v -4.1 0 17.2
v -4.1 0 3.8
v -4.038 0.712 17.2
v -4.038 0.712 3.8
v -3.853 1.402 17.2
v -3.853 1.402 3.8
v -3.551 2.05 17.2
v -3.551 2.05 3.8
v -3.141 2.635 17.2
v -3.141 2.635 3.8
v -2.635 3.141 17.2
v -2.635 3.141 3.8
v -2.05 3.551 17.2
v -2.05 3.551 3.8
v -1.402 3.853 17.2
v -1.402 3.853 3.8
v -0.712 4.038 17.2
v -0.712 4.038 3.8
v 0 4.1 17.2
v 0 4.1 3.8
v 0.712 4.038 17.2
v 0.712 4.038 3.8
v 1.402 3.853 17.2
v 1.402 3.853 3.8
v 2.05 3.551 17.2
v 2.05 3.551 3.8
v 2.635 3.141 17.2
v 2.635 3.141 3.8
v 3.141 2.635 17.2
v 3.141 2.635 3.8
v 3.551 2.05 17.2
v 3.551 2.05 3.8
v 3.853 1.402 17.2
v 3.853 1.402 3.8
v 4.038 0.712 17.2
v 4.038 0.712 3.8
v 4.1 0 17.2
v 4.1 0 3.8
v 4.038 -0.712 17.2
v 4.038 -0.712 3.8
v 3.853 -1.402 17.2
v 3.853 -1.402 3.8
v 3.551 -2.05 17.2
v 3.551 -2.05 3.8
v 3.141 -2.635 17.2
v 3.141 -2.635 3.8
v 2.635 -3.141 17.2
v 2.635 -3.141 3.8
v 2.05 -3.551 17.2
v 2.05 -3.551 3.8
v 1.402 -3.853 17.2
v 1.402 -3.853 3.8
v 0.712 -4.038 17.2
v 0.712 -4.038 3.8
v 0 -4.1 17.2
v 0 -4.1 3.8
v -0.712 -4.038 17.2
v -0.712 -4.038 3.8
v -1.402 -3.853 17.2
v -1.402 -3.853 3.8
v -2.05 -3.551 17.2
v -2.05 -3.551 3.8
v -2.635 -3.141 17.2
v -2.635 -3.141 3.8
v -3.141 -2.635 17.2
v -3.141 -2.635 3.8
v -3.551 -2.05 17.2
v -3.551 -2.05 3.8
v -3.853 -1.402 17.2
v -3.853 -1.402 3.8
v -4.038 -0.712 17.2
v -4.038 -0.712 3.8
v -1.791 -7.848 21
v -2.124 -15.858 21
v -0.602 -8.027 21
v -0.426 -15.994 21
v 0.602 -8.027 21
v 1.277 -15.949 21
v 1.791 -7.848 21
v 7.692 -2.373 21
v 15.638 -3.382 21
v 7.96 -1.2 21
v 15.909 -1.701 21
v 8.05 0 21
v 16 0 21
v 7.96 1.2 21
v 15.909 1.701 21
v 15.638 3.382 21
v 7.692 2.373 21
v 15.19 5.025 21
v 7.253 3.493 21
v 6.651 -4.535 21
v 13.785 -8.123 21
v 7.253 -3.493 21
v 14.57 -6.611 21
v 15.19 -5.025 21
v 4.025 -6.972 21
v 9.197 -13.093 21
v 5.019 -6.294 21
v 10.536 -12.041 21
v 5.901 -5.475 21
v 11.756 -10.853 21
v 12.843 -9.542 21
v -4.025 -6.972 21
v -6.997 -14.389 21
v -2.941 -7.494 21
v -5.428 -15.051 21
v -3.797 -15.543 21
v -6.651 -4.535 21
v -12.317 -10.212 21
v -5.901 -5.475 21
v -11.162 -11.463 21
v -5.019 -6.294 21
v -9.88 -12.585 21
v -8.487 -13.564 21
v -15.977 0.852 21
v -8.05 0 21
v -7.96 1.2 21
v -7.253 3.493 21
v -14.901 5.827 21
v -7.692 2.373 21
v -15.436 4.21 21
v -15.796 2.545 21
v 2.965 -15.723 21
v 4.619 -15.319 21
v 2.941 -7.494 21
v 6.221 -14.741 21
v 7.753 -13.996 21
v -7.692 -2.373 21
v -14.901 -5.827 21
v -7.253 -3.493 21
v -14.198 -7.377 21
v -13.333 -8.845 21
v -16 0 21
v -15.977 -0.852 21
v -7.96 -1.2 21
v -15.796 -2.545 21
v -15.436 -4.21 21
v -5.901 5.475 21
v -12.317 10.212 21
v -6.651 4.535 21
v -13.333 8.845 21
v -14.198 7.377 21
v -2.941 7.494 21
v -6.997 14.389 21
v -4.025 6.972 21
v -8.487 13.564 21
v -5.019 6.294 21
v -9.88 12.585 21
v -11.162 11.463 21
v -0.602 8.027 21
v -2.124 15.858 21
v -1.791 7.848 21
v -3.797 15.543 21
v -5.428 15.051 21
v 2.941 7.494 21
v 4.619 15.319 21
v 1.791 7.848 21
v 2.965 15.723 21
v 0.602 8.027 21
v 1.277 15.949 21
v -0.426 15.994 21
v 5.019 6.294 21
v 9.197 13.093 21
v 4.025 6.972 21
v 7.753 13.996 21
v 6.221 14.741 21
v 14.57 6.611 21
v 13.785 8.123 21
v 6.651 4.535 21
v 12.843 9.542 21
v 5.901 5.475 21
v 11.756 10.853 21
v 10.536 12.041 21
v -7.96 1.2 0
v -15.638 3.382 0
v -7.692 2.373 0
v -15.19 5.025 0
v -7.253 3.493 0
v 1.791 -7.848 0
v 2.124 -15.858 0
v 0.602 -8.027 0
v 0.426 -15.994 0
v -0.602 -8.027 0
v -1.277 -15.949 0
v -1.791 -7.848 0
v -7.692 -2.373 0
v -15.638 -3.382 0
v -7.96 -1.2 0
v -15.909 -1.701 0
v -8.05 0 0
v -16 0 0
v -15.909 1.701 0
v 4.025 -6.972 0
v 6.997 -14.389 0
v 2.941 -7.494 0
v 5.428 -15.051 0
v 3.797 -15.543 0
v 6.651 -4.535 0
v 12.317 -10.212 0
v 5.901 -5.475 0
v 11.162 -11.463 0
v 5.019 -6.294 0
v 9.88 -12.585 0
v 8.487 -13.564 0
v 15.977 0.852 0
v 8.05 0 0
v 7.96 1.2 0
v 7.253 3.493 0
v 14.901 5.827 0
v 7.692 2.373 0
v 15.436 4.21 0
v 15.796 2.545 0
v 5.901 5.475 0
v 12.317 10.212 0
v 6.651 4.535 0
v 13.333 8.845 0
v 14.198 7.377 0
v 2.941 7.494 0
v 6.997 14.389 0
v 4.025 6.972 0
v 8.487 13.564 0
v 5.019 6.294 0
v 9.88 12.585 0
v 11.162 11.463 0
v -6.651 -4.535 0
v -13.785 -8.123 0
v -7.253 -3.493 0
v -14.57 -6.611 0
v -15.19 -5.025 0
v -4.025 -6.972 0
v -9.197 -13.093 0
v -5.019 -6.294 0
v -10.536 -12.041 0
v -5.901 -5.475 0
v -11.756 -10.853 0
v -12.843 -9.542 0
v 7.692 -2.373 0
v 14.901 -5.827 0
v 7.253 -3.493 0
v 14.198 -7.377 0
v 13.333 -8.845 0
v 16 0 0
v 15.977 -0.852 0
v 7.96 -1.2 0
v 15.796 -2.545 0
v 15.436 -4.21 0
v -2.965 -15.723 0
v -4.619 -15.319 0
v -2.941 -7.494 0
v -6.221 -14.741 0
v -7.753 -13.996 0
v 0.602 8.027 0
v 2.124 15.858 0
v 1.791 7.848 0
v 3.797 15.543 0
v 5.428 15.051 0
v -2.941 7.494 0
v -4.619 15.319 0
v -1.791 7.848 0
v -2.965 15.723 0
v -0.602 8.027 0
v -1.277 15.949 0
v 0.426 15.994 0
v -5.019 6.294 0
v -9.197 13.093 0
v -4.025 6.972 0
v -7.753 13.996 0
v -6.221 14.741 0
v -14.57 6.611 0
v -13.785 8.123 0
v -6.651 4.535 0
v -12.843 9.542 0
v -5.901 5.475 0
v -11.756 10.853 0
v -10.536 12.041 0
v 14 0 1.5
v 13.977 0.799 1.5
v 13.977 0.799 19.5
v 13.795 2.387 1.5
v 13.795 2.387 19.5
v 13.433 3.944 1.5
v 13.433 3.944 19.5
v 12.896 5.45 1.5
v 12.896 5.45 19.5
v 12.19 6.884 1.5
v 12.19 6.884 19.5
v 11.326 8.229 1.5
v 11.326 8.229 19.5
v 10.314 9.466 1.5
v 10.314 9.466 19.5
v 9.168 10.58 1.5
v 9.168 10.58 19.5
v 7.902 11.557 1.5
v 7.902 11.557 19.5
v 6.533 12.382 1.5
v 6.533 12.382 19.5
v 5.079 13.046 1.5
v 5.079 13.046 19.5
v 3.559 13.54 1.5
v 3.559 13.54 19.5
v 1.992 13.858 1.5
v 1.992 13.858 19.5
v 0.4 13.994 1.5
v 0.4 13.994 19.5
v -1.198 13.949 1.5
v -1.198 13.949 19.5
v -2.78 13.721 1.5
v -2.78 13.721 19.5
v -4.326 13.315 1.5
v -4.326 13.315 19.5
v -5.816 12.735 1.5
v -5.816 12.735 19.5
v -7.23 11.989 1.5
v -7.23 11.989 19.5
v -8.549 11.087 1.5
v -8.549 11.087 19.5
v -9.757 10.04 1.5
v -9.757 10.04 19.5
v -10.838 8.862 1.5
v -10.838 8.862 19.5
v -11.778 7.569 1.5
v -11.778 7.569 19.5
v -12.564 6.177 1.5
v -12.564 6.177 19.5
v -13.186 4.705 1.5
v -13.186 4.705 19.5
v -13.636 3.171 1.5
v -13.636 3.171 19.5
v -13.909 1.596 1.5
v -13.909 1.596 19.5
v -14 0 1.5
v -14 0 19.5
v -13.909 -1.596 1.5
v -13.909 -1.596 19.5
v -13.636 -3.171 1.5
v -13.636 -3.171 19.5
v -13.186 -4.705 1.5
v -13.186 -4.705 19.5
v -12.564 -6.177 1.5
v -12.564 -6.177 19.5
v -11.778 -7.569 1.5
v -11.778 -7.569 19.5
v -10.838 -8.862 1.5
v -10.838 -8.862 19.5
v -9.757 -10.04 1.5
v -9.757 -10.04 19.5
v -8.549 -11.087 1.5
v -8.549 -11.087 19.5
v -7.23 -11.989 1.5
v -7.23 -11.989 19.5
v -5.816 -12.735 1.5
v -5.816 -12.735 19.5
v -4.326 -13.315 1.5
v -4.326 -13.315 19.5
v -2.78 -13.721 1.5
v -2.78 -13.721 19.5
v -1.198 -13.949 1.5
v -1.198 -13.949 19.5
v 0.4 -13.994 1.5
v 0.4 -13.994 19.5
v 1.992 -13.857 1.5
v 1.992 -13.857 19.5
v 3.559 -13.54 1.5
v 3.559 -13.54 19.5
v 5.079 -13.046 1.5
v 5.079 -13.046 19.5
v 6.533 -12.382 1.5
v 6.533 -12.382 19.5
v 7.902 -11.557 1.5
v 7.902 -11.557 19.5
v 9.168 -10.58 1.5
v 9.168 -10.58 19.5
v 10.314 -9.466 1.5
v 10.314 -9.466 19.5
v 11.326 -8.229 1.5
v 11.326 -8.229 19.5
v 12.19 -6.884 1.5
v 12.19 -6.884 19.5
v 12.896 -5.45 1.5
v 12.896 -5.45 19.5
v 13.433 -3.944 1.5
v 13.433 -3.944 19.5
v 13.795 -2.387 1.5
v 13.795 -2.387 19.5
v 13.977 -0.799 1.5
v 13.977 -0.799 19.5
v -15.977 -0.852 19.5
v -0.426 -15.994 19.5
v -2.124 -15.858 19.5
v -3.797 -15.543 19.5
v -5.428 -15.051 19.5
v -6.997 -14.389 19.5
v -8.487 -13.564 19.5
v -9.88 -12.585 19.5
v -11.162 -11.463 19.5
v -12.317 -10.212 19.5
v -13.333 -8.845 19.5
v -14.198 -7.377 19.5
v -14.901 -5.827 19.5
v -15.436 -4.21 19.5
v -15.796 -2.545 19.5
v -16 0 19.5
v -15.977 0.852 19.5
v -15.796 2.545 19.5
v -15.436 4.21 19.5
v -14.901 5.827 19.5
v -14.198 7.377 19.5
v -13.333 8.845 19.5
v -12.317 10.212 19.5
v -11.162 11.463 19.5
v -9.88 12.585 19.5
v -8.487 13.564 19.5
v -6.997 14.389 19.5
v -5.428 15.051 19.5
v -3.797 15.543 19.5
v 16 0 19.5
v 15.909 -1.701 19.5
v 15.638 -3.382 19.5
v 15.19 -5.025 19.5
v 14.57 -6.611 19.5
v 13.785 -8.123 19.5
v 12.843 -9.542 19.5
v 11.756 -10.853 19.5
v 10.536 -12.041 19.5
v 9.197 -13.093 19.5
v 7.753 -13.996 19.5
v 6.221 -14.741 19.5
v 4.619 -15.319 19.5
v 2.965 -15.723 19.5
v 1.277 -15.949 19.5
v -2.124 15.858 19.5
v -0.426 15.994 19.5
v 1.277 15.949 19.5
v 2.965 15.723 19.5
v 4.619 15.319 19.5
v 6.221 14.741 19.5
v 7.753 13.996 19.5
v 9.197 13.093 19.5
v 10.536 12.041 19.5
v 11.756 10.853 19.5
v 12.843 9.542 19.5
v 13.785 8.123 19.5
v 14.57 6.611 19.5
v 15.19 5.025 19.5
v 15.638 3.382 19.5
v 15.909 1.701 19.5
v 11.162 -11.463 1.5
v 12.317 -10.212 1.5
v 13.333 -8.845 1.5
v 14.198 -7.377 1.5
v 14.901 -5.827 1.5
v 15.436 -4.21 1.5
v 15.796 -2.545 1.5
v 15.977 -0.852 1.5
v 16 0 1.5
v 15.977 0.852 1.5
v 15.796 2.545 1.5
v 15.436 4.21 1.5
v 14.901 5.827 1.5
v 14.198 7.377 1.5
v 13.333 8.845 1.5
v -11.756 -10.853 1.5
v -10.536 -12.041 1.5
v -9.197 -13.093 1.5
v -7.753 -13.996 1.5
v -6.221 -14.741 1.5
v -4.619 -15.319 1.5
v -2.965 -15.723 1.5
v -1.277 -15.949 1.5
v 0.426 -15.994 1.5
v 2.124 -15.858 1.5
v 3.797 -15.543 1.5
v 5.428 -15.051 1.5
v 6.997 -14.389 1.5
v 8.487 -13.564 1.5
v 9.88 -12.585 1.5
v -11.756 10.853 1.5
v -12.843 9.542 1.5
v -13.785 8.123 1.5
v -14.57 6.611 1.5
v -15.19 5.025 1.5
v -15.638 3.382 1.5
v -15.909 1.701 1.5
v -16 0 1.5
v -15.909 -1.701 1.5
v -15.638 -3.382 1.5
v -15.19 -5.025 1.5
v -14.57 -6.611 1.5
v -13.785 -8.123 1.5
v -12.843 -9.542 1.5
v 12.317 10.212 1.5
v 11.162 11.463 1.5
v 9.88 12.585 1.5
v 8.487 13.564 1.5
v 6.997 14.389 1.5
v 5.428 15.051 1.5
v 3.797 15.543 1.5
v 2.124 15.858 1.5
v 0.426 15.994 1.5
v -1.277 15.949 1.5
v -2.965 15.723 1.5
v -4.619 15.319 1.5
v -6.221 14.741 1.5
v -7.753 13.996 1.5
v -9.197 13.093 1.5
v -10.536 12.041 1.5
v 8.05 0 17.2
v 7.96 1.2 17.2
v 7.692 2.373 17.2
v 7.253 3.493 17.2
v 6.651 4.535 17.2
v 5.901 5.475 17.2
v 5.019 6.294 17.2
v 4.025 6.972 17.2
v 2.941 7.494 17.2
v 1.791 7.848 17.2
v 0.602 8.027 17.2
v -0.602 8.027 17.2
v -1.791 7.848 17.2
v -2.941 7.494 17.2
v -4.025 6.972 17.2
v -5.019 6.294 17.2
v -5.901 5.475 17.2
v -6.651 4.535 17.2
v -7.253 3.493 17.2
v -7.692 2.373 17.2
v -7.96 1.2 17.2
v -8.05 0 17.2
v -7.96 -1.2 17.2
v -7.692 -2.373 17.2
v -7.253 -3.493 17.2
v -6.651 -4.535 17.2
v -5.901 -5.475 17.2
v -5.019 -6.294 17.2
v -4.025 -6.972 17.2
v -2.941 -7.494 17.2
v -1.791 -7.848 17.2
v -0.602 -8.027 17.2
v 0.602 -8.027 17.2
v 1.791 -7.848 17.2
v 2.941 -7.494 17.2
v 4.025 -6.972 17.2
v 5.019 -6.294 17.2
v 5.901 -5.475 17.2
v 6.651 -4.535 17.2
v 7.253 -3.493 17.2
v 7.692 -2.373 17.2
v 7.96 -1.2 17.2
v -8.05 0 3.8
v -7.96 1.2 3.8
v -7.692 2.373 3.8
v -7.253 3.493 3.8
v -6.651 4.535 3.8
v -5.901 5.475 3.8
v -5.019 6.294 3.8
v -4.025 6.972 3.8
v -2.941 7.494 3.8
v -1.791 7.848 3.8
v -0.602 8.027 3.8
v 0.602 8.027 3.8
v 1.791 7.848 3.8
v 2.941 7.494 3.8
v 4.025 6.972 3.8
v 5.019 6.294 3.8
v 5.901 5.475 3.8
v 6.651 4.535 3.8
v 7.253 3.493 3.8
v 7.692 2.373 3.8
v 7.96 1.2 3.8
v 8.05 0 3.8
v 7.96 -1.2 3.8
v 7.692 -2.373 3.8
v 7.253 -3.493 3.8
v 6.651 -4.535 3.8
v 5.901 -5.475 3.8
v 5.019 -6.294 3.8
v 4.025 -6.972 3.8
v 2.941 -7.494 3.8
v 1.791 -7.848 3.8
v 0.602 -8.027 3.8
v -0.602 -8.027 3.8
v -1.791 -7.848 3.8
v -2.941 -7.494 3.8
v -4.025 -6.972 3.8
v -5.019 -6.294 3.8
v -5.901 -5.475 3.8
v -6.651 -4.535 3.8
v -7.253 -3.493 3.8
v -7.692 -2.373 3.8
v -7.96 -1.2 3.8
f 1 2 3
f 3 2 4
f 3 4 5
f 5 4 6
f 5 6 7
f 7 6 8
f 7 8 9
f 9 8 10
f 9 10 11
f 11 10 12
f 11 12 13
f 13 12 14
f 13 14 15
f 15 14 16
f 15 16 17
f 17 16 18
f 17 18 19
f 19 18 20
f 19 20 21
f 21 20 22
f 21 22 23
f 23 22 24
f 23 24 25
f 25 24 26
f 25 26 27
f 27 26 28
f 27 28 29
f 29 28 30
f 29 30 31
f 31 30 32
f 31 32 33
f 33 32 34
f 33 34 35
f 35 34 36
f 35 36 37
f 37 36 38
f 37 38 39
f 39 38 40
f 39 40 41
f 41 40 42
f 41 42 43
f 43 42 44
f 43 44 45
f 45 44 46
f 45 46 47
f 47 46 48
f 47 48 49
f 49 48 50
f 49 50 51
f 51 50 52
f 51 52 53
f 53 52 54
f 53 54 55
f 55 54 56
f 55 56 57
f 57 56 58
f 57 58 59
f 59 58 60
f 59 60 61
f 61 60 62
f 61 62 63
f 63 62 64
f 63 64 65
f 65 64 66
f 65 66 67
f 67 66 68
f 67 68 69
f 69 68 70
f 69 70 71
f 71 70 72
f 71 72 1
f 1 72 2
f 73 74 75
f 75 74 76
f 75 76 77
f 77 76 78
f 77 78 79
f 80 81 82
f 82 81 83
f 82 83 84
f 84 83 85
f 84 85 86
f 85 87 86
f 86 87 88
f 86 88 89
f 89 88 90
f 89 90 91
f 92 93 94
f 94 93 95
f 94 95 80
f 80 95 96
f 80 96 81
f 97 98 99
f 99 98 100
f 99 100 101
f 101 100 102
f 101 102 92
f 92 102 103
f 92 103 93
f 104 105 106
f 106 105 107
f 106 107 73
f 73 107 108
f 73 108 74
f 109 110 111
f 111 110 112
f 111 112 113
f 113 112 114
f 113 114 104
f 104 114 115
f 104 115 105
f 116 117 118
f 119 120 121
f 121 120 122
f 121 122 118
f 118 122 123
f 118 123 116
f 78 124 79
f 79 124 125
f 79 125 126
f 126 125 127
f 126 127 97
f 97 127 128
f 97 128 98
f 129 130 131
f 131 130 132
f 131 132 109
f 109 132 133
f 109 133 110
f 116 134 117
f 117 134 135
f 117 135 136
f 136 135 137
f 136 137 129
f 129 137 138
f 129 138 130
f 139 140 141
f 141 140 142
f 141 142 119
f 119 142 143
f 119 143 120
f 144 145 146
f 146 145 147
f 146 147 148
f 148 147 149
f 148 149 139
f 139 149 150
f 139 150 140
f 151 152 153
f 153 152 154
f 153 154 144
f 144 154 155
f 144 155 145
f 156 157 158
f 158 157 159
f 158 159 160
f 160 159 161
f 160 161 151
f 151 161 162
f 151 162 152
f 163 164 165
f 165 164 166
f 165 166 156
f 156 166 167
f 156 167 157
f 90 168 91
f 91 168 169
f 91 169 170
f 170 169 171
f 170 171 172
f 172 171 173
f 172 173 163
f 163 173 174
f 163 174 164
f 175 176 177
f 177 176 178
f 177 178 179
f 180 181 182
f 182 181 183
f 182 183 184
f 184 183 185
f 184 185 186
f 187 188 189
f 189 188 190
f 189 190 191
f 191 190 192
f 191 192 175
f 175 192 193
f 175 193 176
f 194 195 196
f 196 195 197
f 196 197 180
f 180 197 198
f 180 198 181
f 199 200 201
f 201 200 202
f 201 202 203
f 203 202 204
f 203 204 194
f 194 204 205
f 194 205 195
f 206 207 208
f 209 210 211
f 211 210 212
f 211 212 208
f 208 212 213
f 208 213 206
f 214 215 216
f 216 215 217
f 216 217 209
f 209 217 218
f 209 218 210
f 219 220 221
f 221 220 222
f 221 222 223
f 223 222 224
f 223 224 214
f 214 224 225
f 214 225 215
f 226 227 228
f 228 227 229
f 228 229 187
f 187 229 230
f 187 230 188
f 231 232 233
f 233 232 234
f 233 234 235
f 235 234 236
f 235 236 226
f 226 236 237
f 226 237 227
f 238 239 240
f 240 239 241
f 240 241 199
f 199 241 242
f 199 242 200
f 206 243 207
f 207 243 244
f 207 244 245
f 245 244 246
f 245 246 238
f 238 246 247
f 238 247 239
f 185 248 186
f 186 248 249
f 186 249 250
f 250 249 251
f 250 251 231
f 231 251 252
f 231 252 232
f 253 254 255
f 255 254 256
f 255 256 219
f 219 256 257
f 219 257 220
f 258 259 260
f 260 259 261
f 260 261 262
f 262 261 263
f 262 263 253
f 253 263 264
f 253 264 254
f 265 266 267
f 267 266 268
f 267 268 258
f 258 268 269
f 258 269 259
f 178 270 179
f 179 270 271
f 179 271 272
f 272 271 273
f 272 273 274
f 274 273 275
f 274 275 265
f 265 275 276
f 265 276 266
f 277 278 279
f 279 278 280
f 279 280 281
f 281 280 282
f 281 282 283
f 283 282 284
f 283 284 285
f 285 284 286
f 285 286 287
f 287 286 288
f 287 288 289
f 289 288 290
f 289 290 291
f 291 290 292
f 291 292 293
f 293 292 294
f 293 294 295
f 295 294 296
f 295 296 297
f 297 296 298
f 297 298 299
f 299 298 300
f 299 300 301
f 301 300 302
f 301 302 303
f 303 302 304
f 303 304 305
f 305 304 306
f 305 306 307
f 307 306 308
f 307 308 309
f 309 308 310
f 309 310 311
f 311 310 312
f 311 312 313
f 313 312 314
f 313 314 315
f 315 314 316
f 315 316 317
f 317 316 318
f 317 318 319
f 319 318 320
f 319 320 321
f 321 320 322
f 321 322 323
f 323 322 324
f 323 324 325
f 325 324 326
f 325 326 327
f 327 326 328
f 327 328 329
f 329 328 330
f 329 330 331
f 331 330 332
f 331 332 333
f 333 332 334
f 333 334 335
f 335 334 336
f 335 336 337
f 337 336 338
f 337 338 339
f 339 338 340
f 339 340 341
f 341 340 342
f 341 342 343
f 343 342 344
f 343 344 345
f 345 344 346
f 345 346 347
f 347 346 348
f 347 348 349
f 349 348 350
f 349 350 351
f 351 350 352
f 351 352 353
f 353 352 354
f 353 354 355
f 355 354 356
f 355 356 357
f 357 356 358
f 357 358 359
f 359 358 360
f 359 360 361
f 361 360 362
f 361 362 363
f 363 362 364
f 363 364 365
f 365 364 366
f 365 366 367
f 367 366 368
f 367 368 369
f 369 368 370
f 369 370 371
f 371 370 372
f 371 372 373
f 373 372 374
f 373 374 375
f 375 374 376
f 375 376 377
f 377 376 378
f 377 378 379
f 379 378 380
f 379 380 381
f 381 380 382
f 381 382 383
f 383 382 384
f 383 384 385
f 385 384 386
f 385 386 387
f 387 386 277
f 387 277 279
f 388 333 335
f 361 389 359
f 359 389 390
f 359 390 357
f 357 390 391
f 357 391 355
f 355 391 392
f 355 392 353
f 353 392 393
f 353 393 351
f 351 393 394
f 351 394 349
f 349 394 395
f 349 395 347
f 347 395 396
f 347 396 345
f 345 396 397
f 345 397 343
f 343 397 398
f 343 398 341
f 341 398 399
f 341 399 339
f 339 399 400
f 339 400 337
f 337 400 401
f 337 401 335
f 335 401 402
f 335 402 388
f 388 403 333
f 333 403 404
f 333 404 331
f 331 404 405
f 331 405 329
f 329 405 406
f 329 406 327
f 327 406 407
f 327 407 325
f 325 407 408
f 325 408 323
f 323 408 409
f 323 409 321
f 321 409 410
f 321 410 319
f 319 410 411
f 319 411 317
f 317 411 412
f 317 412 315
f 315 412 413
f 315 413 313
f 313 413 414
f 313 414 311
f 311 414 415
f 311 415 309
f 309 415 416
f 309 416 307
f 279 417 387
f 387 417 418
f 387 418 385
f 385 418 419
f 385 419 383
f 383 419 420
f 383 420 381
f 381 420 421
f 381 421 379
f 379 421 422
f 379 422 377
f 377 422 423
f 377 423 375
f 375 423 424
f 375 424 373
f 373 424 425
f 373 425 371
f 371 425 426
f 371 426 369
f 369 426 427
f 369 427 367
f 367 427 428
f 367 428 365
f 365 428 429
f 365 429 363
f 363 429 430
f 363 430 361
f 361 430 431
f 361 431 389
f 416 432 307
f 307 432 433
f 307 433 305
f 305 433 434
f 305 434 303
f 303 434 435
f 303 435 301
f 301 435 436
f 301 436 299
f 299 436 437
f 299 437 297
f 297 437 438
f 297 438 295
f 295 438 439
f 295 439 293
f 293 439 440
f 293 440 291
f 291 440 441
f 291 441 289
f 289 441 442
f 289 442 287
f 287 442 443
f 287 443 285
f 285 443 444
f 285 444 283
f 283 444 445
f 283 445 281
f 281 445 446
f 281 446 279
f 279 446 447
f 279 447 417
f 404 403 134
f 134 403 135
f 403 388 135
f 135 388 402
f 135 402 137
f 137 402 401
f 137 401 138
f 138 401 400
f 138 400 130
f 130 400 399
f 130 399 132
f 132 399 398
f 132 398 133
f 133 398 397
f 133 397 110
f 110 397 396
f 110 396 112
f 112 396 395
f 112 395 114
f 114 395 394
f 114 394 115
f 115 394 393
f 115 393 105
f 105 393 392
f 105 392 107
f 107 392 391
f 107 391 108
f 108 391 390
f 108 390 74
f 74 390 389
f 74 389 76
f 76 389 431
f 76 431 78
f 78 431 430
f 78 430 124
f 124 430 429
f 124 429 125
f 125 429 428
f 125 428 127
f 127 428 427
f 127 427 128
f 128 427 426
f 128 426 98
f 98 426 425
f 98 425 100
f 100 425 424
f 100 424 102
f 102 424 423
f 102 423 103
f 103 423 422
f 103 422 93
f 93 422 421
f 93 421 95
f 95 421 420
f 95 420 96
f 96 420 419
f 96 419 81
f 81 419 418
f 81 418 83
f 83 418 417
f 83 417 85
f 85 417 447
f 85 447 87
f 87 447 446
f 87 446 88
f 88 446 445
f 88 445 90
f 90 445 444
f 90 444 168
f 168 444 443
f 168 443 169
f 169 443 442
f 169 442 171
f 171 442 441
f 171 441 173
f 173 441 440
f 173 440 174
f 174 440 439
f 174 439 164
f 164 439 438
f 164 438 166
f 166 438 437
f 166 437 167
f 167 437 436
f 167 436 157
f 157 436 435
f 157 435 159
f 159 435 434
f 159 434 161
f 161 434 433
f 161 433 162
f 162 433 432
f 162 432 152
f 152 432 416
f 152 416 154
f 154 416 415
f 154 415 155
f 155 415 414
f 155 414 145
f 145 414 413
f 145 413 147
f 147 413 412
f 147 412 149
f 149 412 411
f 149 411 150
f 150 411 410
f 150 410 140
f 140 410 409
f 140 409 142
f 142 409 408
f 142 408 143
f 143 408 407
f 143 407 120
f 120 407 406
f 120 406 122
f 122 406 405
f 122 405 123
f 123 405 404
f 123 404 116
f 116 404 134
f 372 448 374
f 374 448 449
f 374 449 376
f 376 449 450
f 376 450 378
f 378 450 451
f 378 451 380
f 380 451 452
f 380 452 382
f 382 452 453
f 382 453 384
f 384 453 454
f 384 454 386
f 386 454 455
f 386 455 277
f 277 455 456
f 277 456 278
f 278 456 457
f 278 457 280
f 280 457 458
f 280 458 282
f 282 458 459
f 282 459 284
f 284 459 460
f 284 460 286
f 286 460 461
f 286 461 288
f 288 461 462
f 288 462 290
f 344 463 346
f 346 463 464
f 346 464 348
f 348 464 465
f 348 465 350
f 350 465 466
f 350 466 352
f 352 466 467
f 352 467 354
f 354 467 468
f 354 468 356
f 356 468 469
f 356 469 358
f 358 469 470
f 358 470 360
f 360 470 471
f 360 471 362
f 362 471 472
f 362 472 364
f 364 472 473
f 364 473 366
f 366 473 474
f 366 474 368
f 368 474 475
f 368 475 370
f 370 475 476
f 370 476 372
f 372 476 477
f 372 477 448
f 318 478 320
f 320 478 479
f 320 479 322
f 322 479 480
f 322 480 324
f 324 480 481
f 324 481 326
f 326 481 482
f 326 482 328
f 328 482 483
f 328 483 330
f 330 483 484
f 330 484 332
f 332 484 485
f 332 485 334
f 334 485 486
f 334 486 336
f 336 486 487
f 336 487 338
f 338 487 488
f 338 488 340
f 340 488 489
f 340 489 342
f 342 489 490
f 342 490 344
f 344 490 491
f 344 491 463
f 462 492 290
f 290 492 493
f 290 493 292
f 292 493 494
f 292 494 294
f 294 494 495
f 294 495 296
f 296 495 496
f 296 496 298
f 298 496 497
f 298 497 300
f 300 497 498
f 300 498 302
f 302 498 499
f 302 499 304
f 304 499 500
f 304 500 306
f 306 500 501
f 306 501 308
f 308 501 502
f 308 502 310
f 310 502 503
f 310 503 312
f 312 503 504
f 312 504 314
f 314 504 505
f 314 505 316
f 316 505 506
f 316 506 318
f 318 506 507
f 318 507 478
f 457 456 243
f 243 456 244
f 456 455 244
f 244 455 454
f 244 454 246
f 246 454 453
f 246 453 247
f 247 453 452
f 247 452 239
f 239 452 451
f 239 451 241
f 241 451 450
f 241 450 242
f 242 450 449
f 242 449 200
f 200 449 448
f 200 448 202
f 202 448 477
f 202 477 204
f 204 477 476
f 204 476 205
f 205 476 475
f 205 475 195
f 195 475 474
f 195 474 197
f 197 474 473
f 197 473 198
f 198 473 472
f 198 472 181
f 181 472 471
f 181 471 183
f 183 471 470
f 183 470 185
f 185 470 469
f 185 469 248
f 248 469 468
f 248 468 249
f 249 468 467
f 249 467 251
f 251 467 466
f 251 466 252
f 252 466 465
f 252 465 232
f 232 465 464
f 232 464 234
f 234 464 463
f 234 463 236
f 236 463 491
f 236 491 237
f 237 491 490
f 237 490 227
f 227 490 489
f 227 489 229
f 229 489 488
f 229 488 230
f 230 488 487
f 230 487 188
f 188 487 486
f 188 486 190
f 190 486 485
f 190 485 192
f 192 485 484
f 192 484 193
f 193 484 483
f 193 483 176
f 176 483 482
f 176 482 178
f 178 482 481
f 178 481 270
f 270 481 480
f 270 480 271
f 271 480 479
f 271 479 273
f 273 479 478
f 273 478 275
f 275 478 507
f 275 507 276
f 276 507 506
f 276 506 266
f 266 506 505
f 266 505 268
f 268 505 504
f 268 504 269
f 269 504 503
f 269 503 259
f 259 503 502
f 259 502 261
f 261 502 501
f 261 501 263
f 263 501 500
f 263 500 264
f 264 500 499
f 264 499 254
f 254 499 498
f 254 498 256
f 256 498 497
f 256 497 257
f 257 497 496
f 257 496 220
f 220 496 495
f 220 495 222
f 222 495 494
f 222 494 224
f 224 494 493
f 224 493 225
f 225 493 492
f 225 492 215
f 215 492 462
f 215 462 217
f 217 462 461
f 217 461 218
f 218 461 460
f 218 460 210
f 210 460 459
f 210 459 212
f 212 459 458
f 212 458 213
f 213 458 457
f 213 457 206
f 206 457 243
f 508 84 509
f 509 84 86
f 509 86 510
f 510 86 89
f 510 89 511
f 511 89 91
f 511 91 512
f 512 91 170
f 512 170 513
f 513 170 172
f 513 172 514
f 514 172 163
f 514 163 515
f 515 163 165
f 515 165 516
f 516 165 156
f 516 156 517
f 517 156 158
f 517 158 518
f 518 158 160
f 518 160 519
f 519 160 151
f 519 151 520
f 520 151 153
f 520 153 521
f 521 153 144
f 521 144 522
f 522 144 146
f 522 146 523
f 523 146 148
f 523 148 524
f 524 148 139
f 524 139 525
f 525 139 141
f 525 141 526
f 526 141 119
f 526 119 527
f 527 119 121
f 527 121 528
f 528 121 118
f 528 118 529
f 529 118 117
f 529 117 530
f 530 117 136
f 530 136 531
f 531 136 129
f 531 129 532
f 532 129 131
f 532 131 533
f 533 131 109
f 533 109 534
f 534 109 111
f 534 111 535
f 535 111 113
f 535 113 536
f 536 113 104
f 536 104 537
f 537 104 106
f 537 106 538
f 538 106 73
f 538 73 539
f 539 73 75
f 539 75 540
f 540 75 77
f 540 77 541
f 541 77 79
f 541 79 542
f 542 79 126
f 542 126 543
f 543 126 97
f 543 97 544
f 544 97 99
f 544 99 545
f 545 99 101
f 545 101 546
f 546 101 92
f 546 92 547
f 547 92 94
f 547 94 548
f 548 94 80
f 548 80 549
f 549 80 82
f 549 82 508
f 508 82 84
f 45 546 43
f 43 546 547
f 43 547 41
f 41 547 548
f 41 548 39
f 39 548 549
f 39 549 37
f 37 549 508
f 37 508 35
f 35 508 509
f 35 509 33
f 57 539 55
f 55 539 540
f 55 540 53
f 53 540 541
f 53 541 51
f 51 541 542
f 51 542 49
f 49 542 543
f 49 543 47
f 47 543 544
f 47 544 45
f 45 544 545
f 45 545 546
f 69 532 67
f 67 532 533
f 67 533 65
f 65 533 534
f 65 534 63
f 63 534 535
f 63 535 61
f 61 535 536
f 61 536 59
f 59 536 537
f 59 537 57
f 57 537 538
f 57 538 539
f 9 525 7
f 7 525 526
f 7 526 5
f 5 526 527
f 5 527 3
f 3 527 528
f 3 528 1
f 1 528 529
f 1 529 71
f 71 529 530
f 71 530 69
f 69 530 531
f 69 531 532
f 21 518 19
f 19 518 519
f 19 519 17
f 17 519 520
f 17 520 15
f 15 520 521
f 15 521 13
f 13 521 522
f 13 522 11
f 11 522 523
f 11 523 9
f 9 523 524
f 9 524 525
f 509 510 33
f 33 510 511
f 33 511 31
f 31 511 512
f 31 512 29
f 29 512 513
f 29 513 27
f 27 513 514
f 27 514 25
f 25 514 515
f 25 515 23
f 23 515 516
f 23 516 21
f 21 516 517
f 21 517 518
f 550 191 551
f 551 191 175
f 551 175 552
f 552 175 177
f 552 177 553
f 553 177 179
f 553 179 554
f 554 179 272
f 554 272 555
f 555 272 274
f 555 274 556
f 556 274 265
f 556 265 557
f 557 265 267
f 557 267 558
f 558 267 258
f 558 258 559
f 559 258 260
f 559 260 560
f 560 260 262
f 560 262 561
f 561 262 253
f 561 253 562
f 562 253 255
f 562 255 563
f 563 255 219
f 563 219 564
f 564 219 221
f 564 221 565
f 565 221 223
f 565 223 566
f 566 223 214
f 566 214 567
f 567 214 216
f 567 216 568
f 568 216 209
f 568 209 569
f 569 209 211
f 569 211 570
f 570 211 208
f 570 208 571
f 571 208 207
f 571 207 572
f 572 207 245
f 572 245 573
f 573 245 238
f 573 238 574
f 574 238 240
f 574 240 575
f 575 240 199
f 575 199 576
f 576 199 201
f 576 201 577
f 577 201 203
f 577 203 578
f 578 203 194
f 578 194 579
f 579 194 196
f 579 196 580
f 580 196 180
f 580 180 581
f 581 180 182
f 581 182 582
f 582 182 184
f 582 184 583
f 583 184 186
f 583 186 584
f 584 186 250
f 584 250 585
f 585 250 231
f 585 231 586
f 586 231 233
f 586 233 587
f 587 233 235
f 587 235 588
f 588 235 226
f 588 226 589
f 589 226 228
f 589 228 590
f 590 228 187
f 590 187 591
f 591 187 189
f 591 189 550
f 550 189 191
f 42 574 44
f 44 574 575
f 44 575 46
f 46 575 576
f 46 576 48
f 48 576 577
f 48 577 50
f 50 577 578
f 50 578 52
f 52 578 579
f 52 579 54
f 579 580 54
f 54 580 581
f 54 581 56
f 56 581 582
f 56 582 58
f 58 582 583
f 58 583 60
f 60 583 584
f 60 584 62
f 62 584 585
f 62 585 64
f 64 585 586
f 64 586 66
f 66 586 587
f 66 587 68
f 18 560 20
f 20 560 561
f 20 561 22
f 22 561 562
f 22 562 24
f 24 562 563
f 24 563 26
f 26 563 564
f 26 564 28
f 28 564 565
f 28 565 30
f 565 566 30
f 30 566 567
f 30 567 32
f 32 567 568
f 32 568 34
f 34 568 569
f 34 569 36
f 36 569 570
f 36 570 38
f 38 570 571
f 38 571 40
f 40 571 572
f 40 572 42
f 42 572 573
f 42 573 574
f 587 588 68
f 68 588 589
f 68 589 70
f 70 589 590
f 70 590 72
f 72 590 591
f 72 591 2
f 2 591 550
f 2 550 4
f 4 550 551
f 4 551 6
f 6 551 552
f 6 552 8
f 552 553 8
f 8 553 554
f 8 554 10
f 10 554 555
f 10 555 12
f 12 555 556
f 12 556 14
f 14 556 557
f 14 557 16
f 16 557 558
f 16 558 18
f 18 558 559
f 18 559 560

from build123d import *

# Parameters (mm, degrees)
SKETCH1_R           = 14
SKETCH1_R_2         = 4.1
BOSS_EXTRUDE1_DEPTH = 21
SKETCH8_R           = 16
SKETCH8_R_2         = 6.25
BOSS_EXTRUDE2_DEPTH = 1.5
SKETCH9_R           = 16
SKETCH9_R_2         = 6.25
BOSS_EXTRUDE3_DEPTH = 1.5
SKETCH10_R          = 8.05
CUT_EXTRUDE1_DEPTH  = 3.8
CUT_EXTRUDE2_START  = -21
SKETCH10_2_R        = 8.05
CUT_EXTRUDE2_DEPTH  = 3.8


with BuildPart() as part:
    # Sketch1 → Boss-Extrude1 (new body)
    with BuildSketch(Plane.XY):
        Circle(SKETCH1_R)
        Circle(SKETCH1_R_2, mode=Mode.SUBTRACT)
    extrude(amount=BOSS_EXTRUDE1_DEPTH)

    # Sketch8 → Boss-Extrude2 (add)
    with BuildSketch(Plane(origin=(0, 0, 21), x_dir=(-1, 0, 0), z_dir=(0, 0, -1))):
        Circle(SKETCH8_R)
        Circle(SKETCH8_R_2, mode=Mode.SUBTRACT)
    extrude(amount=BOSS_EXTRUDE2_DEPTH)

    # Sketch9 → Boss-Extrude3 (add)
    with BuildSketch(Plane.XY):
        Circle(SKETCH9_R)
        Circle(SKETCH9_R_2, mode=Mode.SUBTRACT)
    extrude(amount=BOSS_EXTRUDE3_DEPTH)

    # Sketch10 → Cut-Extrude1 (cut)
    with BuildSketch(Plane.XY.offset(21)):
        Circle(SKETCH10_R)
    extrude(amount=-CUT_EXTRUDE1_DEPTH, mode=Mode.SUBTRACT)

    # Sketch10<2> → Cut-Extrude2 (cut)
    with BuildSketch(Plane.XY.offset(21).offset(CUT_EXTRUDE2_START)):
        Circle(SKETCH10_2_R)
    extrude(amount=CUT_EXTRUDE2_DEPTH, mode=Mode.SUBTRACT)


solid = part.part
